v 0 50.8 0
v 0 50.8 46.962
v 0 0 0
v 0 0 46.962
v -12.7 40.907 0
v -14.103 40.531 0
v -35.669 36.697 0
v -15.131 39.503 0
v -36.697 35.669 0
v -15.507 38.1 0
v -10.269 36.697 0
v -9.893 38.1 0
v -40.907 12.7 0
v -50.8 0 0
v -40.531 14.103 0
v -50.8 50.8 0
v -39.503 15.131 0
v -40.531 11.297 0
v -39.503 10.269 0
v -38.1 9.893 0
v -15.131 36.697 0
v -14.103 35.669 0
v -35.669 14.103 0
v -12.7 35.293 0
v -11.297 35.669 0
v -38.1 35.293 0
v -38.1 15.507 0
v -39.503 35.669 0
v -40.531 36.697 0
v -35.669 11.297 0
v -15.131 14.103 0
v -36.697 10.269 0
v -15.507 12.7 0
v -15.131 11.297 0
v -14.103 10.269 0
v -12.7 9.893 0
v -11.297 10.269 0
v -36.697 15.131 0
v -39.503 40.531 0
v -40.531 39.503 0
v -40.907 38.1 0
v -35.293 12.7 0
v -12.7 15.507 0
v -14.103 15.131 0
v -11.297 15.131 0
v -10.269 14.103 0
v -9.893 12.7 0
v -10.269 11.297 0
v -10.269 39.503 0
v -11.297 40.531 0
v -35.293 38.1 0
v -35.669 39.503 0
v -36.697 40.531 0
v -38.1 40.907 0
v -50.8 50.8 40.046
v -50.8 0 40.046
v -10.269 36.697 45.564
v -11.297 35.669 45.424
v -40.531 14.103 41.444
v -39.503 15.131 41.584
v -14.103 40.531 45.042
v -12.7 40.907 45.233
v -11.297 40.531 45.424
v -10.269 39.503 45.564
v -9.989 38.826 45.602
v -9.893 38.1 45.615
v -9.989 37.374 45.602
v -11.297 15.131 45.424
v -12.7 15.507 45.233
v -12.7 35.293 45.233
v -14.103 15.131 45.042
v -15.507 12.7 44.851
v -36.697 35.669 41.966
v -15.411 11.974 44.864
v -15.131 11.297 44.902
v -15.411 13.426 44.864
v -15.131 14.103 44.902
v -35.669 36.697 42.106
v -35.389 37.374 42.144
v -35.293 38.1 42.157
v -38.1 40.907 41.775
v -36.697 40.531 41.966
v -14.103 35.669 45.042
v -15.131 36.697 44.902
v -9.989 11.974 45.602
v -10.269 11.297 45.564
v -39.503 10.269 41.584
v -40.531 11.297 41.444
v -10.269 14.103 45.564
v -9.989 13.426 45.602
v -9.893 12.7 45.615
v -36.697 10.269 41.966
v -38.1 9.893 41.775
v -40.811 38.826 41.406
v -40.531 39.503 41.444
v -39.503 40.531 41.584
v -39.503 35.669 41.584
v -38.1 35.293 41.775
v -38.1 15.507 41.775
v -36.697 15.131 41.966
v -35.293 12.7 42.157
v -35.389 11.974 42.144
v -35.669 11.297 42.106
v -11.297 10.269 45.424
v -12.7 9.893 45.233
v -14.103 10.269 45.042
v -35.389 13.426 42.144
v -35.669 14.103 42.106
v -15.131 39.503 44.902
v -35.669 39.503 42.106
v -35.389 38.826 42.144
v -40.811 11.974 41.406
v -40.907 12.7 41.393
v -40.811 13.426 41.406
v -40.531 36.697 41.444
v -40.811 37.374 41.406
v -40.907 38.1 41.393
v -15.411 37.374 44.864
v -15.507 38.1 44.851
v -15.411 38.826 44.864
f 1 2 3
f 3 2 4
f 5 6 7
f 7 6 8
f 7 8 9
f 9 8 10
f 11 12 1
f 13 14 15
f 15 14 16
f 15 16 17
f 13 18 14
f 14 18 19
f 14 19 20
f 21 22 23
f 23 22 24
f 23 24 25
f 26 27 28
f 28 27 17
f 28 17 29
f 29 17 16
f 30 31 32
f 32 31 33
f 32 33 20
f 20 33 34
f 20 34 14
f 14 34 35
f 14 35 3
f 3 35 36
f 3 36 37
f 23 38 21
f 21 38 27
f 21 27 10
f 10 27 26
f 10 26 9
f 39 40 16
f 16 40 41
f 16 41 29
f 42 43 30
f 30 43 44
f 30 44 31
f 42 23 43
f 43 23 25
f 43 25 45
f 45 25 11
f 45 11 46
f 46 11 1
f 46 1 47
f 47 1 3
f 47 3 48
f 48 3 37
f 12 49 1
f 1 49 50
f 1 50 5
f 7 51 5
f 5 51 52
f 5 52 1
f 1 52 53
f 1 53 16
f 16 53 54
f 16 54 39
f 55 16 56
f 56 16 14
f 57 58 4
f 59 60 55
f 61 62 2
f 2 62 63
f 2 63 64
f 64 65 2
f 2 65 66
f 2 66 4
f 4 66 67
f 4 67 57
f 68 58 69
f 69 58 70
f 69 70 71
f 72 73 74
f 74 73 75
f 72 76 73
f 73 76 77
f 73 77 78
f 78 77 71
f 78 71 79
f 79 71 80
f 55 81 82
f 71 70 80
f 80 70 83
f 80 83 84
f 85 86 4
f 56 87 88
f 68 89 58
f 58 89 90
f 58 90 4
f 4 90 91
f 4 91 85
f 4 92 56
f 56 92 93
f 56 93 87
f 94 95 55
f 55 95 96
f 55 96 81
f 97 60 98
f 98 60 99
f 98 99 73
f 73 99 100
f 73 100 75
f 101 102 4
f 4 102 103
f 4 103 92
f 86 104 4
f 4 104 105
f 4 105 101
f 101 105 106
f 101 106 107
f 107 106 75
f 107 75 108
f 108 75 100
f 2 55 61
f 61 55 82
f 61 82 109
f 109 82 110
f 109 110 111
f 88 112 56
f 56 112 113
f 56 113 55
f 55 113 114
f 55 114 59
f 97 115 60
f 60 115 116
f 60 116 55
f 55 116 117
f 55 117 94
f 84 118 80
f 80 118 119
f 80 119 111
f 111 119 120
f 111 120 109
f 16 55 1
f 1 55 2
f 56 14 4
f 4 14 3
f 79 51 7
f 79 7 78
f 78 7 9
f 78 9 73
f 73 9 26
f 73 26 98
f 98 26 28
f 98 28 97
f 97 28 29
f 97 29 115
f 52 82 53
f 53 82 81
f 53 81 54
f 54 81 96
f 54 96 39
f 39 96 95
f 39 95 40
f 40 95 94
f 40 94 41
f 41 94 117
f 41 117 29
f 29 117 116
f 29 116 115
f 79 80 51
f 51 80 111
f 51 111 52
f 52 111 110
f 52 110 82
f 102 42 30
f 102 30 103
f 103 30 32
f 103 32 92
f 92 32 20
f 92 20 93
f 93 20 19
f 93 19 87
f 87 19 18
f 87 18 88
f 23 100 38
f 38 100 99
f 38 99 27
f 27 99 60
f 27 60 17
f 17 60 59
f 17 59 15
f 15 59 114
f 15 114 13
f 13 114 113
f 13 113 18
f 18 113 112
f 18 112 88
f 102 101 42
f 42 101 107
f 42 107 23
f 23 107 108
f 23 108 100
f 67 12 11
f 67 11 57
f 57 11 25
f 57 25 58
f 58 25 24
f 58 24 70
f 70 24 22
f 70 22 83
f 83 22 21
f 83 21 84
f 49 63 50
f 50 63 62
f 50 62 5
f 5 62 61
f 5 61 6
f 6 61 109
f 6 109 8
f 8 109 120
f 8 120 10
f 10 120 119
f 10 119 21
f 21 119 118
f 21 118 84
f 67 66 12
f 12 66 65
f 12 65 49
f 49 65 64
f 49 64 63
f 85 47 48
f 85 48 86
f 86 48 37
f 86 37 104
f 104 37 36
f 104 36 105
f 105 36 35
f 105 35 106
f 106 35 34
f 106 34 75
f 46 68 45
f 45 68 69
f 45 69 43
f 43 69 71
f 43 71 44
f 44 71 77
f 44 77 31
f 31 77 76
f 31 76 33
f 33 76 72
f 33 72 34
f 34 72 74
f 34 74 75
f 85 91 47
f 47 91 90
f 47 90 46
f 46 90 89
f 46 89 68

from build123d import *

# Parameters (mm, degrees)
BOSS_EXTRUDE1_DEPTH                                = 50.8
CSK_FOR_10_FLAT_HEAD_MACHINE_SCREW_100_D           = 5.6134
CSK_FOR_10_FLAT_HEAD_MACHINE_SCREW_100_CSINK_D     = 17.78
CSK_FOR_10_FLAT_HEAD_MACHINE_SCREW_100_CSINK_ANGLE = 90
CSK_FOR_10_FLAT_HEAD_MACHINE_SCREW_2_D             = 5.6134
CSK_FOR_10_FLAT_HEAD_MACHINE_SCREW_2_CSINK_D       = 17.78
CSK_FOR_10_FLAT_HEAD_MACHINE_SCREW_2_CSINK_ANGLE   = 90


with BuildPart() as part:
    # Sketch1 → Boss-Extrude1 (new body)
    with BuildSketch(Plane(origin=(0, 0, 0), x_dir=(1, 0, 0), z_dir=(0, 1, 0))):
        Polygon((0, 0), (-50.8, 0), (-50.8, -40.046314449), (0, -46.961736623), align=None)
    extrude(amount=BOSS_EXTRUDE1_DEPTH)

    # CSK for _10 Flat Head Machine Screw _100 (through all)
    with Locations(Plane(origin=(295.341972913, -214.795089466, 50.8), x_dir=(-1, 0, 0), z_dir=(0, 0, 1))):
        with Locations((333.441972913, -227.495089466), (333.441972913, -252.895089466), (333.441972913, -329.095089466), (333.441972913, -354.495089466)):
            CounterSinkHole(CSK_FOR_10_FLAT_HEAD_MACHINE_SCREW_100_D / 2, CSK_FOR_10_FLAT_HEAD_MACHINE_SCREW_100_CSINK_D / 2, counter_sink_angle=CSK_FOR_10_FLAT_HEAD_MACHINE_SCREW_100_CSINK_ANGLE)

    # CSK for _10 Flat Head Machine Screw  2 (through all)
    with Locations(Plane(origin=(295.341972913, -316.395089466, 53.34), x_dir=(-1, 0, 0), z_dir=(0, 0, 1))):
        with Locations((308.041972913, -252.895089466), (308.041972913, -227.495089466), (308.041972913, -329.095089466), (308.041972913, -354.495089466)):
            CounterSinkHole(CSK_FOR_10_FLAT_HEAD_MACHINE_SCREW_2_D / 2, CSK_FOR_10_FLAT_HEAD_MACHINE_SCREW_2_CSINK_D / 2, counter_sink_angle=CSK_FOR_10_FLAT_HEAD_MACHINE_SCREW_2_CSINK_ANGLE)


solid = part.part
